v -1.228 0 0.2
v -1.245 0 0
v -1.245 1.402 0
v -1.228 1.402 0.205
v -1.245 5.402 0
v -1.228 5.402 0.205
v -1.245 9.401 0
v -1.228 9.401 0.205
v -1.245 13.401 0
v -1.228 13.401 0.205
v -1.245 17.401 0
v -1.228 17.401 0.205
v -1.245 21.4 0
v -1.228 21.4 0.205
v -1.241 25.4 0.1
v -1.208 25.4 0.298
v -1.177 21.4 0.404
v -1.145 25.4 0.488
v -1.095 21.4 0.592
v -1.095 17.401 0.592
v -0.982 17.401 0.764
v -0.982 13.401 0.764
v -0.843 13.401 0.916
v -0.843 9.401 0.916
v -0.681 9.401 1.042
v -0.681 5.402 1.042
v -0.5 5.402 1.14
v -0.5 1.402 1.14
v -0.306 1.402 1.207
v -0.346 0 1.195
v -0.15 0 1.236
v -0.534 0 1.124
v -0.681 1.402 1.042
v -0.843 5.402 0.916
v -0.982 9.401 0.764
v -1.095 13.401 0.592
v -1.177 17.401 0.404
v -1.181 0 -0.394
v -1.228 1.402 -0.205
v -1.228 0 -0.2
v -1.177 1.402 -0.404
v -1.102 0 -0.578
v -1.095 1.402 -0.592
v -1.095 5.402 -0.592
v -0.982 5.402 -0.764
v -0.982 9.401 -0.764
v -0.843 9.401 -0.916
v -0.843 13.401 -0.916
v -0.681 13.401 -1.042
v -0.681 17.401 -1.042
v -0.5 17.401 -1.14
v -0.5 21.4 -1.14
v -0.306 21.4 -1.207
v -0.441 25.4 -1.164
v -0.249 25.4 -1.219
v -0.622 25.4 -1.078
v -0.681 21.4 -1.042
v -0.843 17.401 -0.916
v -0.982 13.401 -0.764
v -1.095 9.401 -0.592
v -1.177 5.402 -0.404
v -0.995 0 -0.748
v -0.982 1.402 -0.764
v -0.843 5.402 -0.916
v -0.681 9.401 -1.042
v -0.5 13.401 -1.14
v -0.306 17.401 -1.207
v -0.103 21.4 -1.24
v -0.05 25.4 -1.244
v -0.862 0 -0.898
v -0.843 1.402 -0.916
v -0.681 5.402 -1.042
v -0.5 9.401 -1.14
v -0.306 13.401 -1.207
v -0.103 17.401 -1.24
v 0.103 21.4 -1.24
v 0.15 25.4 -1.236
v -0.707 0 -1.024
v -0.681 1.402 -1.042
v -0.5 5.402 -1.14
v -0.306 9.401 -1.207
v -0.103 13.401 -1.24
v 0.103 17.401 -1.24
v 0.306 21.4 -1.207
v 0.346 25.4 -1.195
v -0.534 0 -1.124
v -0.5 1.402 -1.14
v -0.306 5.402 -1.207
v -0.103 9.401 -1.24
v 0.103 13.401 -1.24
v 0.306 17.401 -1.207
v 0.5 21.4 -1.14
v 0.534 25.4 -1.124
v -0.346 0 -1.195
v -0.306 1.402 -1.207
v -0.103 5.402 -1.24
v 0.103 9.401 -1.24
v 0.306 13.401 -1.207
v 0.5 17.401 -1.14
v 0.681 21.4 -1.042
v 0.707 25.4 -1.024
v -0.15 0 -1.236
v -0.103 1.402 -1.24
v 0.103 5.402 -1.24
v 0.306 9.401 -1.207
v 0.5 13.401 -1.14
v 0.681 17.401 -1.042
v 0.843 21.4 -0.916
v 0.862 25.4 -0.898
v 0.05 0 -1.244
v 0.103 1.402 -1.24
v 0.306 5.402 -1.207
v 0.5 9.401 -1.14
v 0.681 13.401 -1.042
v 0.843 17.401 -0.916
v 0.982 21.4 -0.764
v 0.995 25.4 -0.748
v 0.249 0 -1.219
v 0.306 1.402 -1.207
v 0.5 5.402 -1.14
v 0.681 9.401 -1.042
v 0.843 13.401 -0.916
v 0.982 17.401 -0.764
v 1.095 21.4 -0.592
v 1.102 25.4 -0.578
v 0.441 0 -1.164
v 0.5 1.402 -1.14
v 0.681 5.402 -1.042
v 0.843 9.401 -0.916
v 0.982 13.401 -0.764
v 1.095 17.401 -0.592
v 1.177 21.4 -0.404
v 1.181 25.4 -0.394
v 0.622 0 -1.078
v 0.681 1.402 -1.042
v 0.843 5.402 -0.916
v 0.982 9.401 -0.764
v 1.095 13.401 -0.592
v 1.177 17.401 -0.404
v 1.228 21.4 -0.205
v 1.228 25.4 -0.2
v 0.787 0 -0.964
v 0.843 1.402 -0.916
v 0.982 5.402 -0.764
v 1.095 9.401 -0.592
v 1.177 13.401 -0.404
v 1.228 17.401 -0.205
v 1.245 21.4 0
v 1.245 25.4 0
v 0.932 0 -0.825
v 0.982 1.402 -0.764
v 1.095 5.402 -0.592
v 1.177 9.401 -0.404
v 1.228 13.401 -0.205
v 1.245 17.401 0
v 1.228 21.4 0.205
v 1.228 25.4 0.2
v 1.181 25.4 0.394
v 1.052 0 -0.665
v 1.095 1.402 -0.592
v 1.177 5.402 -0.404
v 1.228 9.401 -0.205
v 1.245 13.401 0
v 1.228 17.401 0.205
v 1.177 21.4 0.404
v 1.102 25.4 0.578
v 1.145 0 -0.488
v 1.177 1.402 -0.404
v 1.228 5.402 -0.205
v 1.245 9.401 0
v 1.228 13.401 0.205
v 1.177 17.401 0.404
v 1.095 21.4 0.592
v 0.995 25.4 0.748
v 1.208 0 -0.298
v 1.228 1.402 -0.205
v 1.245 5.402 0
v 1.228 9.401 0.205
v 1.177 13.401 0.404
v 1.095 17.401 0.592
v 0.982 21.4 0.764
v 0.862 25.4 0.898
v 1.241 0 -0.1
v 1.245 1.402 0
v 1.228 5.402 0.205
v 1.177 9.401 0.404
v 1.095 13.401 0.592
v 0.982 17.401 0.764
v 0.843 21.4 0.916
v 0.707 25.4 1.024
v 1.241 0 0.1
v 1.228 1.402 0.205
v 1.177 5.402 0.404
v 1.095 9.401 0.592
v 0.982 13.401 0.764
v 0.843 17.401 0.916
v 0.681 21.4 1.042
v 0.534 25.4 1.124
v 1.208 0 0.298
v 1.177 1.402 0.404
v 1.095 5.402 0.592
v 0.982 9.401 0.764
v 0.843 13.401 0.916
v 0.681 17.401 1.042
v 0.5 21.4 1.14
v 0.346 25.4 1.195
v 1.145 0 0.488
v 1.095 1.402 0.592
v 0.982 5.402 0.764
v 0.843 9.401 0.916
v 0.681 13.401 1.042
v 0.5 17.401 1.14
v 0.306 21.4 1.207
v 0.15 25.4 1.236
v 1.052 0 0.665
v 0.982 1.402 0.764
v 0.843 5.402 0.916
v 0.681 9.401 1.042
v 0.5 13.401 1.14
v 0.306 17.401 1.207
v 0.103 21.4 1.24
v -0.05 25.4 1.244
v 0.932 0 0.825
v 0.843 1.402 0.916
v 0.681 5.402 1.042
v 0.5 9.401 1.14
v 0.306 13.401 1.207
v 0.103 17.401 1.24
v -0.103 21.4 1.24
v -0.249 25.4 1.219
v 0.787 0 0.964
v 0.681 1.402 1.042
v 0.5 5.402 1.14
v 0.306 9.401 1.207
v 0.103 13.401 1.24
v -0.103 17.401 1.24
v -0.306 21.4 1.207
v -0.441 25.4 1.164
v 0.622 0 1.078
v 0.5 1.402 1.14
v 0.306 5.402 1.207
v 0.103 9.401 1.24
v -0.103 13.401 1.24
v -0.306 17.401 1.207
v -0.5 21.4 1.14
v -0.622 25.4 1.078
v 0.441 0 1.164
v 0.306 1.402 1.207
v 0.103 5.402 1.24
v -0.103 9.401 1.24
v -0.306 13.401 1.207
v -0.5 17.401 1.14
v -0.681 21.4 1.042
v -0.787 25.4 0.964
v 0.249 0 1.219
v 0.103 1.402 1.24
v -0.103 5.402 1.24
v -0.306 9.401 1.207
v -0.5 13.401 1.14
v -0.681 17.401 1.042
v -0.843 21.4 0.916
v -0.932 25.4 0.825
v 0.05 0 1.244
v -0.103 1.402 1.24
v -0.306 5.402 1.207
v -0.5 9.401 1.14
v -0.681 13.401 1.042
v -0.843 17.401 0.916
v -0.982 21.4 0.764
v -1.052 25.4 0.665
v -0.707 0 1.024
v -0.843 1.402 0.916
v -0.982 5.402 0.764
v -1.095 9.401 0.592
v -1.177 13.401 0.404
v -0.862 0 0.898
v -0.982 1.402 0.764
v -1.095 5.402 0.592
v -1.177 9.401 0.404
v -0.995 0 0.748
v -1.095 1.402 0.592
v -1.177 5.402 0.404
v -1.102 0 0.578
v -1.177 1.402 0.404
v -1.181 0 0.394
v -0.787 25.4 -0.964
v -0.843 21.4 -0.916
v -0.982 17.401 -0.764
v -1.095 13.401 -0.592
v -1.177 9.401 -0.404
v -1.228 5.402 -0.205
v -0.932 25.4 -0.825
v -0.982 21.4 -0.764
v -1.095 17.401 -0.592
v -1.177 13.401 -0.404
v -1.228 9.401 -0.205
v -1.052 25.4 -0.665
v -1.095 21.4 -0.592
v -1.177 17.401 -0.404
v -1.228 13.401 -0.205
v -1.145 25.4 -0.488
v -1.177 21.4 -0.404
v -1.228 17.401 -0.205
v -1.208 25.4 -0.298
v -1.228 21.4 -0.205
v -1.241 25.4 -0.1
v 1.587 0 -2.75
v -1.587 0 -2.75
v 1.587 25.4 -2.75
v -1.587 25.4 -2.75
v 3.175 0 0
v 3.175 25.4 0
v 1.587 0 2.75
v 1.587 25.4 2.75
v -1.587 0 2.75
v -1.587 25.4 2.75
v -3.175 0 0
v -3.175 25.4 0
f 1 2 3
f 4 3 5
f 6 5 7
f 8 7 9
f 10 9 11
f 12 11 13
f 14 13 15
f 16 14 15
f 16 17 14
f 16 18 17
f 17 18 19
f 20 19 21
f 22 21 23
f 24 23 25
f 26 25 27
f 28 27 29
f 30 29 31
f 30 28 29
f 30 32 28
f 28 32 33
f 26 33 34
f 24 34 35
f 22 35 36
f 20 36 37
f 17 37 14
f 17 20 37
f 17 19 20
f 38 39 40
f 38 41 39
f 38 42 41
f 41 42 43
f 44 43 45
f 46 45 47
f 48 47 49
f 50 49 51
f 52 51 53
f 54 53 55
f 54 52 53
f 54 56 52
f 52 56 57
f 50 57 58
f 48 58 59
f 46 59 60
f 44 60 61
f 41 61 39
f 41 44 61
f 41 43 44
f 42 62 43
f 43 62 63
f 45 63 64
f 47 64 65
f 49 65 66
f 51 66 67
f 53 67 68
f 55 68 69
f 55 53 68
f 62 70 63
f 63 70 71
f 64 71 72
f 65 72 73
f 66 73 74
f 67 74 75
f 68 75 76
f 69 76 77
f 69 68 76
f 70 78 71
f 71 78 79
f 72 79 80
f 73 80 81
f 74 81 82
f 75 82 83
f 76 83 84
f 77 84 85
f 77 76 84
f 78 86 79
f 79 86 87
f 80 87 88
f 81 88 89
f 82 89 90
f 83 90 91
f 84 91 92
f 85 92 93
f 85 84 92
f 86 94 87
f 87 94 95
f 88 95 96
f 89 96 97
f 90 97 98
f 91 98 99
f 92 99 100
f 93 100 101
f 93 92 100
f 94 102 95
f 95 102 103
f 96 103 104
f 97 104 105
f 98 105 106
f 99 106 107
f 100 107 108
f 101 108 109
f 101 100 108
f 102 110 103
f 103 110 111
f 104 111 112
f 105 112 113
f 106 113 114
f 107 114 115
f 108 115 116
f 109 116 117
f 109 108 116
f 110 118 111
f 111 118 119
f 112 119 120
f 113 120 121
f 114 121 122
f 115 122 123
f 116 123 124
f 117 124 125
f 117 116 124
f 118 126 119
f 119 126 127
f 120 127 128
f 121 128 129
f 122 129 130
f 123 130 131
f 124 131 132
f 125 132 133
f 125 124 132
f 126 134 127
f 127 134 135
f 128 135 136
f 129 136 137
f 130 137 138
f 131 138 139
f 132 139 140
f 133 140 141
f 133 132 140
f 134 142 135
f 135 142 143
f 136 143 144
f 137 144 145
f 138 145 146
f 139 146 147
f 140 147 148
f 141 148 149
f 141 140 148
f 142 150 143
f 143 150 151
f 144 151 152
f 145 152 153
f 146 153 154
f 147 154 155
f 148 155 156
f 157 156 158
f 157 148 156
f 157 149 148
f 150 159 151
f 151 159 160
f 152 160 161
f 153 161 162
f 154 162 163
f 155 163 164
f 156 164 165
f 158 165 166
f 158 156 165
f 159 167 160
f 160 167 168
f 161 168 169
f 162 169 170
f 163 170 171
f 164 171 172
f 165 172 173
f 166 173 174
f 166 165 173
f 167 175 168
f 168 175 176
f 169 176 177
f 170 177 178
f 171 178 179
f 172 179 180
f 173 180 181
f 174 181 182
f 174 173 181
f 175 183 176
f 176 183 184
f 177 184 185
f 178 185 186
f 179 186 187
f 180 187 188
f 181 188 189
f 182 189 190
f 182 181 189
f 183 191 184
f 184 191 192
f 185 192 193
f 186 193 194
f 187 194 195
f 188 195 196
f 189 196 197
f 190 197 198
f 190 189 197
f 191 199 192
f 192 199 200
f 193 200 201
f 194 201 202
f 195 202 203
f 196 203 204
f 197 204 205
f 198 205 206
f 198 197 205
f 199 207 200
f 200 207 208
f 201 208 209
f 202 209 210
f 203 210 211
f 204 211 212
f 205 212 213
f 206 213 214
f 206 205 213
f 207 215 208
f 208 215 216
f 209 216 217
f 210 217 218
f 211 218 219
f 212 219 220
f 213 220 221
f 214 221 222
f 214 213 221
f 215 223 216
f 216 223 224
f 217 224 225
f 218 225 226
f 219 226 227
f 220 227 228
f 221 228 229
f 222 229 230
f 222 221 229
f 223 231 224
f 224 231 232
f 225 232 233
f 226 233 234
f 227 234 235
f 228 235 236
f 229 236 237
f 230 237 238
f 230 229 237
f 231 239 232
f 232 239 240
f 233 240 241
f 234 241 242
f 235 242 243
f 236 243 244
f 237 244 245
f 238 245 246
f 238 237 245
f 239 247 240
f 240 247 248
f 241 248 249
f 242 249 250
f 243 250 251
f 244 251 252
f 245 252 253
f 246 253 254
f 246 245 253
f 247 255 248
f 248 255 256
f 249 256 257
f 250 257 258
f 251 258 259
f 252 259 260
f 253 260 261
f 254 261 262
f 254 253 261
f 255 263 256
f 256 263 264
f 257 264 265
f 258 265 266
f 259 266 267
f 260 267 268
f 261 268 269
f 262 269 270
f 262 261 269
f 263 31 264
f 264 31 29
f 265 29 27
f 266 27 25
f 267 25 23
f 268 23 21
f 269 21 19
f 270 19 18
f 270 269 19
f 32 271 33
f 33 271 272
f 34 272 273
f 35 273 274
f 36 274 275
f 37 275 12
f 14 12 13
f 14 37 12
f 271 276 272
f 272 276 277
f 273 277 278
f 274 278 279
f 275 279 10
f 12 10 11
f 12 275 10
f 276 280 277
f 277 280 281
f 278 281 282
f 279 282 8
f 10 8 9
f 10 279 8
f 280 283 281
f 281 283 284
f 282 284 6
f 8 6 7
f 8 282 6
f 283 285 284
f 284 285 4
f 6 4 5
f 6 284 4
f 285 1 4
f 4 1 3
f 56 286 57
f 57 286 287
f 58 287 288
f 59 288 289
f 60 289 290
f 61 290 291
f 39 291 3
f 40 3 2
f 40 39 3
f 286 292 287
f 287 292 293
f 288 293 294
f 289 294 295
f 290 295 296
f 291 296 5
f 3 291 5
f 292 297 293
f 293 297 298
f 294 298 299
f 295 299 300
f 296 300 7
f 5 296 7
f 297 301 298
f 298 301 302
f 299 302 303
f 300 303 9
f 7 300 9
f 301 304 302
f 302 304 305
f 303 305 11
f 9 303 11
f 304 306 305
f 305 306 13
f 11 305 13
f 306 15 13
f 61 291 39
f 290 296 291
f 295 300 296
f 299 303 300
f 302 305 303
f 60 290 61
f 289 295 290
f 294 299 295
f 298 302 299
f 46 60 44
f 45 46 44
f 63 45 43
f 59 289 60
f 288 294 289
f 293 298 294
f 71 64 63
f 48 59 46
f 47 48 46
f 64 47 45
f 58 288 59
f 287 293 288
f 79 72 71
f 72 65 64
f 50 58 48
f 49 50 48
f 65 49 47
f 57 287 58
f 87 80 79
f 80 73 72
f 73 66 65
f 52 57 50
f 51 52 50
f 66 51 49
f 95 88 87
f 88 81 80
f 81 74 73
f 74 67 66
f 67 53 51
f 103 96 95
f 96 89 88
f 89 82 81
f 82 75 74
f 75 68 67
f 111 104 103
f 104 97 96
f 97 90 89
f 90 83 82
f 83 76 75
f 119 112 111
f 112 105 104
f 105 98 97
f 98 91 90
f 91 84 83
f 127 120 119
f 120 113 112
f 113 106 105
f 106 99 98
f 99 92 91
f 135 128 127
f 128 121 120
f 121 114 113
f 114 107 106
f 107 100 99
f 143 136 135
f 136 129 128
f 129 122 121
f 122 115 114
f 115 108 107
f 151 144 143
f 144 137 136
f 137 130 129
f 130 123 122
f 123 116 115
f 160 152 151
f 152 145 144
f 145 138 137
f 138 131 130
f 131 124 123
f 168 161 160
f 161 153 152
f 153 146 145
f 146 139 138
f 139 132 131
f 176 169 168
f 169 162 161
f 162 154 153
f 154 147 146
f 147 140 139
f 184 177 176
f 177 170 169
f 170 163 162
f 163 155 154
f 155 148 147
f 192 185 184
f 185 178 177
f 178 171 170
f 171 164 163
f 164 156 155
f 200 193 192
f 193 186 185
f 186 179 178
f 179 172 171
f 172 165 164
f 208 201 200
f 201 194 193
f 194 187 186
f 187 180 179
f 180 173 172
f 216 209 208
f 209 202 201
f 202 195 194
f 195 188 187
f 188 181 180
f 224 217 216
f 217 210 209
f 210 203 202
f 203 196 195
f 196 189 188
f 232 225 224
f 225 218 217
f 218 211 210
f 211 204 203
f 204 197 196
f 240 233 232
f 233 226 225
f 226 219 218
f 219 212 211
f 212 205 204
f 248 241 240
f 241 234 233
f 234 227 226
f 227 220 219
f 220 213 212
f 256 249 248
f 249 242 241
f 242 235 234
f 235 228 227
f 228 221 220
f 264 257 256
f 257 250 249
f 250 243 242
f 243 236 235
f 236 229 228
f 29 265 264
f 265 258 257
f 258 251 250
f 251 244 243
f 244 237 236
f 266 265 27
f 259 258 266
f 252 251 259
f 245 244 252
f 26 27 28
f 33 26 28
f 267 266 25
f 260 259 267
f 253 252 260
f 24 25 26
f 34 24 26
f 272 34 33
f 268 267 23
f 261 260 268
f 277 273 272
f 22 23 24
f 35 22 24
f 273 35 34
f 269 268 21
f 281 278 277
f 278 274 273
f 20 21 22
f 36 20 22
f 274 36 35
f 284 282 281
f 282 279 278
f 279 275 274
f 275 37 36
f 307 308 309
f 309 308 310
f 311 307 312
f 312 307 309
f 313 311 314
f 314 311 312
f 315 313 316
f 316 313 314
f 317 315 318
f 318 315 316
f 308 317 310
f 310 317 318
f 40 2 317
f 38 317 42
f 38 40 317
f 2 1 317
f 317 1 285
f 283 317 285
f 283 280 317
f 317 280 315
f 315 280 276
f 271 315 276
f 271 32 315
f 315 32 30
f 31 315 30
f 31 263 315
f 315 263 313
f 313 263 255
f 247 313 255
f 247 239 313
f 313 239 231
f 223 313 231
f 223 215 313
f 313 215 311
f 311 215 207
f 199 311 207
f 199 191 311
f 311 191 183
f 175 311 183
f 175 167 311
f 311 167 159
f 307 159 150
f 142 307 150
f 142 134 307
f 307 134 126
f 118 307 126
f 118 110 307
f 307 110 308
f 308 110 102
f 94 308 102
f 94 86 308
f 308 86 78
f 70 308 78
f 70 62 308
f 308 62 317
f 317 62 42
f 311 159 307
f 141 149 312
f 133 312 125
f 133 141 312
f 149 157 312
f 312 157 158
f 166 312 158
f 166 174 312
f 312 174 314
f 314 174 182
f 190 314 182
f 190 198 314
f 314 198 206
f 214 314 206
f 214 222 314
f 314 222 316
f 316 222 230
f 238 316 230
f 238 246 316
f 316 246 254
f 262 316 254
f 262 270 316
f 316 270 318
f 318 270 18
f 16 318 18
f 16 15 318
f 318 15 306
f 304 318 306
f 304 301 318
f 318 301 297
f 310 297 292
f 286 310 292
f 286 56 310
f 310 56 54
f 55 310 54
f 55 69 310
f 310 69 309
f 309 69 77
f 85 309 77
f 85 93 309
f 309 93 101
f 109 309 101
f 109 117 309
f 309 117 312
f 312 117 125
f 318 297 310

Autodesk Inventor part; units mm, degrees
ref_plane "YZ Plane" through (0, 0, 0) normal (1, 0, 0) x (0, 1, 0)
ref_plane "XZ Plane" through (0, 0, 0) normal (0, 1, 0) x (-1, 0, 0)
ref_plane "XY Plane" through (0, 0, 0) normal (0, 0, 1) x (1, 0, 0)
sketch "Sketch2" plane through (0, 0, 0) normal (0, 1, 0) x (-1, 0, 0)
  line L0 (3.175, 0) -> (1.5875, -2.7496)
  line L1 (1.5875, -2.7496) -> (-1.5875, -2.7496)
  line L2 (-1.5875, -2.7496) -> (-3.175, 0)
  line L3 (-3.175, 0) -> (-1.5875, 2.7496)
  line L4 (-1.5875, 2.7496) -> (1.5875, 2.7496)
  line L5 (1.5875, 2.7496) -> (3.175, 0)
  point P0 (0, 0)
  point P1 (0, 0)
  dimension "d0" = 6.35
  dimension "d1" = 2.7496
extrude "Extrusion1" add sketch "Sketch2" along normal blind 25.4
sketch "Sketch3" plane through (0, 25.4, 0) normal (0, 1, 0) x (1, 0, 0)
  line L0 (-1.5875, 2.7496) -> (-3.175, 0) projected
  line L1 (-3.175, 0) -> (-1.5875, -2.7496) projected
  line L2 (-1.5875, -2.7496) -> (1.5875, -2.7496) projected
  line L3 (1.5875, -2.7496) -> (3.175, 0) projected
  line L4 (3.175, 0) -> (1.5875, 2.7496) projected
  line L5 (1.5875, 2.7496) -> (-1.5875, 2.7496) projected
  point P0 (0, 0)
hole "Hole1" at (0, 25.4, 0) direction (0, -1, 0) diameter 2.4892 end through all
properties part number "000202"
